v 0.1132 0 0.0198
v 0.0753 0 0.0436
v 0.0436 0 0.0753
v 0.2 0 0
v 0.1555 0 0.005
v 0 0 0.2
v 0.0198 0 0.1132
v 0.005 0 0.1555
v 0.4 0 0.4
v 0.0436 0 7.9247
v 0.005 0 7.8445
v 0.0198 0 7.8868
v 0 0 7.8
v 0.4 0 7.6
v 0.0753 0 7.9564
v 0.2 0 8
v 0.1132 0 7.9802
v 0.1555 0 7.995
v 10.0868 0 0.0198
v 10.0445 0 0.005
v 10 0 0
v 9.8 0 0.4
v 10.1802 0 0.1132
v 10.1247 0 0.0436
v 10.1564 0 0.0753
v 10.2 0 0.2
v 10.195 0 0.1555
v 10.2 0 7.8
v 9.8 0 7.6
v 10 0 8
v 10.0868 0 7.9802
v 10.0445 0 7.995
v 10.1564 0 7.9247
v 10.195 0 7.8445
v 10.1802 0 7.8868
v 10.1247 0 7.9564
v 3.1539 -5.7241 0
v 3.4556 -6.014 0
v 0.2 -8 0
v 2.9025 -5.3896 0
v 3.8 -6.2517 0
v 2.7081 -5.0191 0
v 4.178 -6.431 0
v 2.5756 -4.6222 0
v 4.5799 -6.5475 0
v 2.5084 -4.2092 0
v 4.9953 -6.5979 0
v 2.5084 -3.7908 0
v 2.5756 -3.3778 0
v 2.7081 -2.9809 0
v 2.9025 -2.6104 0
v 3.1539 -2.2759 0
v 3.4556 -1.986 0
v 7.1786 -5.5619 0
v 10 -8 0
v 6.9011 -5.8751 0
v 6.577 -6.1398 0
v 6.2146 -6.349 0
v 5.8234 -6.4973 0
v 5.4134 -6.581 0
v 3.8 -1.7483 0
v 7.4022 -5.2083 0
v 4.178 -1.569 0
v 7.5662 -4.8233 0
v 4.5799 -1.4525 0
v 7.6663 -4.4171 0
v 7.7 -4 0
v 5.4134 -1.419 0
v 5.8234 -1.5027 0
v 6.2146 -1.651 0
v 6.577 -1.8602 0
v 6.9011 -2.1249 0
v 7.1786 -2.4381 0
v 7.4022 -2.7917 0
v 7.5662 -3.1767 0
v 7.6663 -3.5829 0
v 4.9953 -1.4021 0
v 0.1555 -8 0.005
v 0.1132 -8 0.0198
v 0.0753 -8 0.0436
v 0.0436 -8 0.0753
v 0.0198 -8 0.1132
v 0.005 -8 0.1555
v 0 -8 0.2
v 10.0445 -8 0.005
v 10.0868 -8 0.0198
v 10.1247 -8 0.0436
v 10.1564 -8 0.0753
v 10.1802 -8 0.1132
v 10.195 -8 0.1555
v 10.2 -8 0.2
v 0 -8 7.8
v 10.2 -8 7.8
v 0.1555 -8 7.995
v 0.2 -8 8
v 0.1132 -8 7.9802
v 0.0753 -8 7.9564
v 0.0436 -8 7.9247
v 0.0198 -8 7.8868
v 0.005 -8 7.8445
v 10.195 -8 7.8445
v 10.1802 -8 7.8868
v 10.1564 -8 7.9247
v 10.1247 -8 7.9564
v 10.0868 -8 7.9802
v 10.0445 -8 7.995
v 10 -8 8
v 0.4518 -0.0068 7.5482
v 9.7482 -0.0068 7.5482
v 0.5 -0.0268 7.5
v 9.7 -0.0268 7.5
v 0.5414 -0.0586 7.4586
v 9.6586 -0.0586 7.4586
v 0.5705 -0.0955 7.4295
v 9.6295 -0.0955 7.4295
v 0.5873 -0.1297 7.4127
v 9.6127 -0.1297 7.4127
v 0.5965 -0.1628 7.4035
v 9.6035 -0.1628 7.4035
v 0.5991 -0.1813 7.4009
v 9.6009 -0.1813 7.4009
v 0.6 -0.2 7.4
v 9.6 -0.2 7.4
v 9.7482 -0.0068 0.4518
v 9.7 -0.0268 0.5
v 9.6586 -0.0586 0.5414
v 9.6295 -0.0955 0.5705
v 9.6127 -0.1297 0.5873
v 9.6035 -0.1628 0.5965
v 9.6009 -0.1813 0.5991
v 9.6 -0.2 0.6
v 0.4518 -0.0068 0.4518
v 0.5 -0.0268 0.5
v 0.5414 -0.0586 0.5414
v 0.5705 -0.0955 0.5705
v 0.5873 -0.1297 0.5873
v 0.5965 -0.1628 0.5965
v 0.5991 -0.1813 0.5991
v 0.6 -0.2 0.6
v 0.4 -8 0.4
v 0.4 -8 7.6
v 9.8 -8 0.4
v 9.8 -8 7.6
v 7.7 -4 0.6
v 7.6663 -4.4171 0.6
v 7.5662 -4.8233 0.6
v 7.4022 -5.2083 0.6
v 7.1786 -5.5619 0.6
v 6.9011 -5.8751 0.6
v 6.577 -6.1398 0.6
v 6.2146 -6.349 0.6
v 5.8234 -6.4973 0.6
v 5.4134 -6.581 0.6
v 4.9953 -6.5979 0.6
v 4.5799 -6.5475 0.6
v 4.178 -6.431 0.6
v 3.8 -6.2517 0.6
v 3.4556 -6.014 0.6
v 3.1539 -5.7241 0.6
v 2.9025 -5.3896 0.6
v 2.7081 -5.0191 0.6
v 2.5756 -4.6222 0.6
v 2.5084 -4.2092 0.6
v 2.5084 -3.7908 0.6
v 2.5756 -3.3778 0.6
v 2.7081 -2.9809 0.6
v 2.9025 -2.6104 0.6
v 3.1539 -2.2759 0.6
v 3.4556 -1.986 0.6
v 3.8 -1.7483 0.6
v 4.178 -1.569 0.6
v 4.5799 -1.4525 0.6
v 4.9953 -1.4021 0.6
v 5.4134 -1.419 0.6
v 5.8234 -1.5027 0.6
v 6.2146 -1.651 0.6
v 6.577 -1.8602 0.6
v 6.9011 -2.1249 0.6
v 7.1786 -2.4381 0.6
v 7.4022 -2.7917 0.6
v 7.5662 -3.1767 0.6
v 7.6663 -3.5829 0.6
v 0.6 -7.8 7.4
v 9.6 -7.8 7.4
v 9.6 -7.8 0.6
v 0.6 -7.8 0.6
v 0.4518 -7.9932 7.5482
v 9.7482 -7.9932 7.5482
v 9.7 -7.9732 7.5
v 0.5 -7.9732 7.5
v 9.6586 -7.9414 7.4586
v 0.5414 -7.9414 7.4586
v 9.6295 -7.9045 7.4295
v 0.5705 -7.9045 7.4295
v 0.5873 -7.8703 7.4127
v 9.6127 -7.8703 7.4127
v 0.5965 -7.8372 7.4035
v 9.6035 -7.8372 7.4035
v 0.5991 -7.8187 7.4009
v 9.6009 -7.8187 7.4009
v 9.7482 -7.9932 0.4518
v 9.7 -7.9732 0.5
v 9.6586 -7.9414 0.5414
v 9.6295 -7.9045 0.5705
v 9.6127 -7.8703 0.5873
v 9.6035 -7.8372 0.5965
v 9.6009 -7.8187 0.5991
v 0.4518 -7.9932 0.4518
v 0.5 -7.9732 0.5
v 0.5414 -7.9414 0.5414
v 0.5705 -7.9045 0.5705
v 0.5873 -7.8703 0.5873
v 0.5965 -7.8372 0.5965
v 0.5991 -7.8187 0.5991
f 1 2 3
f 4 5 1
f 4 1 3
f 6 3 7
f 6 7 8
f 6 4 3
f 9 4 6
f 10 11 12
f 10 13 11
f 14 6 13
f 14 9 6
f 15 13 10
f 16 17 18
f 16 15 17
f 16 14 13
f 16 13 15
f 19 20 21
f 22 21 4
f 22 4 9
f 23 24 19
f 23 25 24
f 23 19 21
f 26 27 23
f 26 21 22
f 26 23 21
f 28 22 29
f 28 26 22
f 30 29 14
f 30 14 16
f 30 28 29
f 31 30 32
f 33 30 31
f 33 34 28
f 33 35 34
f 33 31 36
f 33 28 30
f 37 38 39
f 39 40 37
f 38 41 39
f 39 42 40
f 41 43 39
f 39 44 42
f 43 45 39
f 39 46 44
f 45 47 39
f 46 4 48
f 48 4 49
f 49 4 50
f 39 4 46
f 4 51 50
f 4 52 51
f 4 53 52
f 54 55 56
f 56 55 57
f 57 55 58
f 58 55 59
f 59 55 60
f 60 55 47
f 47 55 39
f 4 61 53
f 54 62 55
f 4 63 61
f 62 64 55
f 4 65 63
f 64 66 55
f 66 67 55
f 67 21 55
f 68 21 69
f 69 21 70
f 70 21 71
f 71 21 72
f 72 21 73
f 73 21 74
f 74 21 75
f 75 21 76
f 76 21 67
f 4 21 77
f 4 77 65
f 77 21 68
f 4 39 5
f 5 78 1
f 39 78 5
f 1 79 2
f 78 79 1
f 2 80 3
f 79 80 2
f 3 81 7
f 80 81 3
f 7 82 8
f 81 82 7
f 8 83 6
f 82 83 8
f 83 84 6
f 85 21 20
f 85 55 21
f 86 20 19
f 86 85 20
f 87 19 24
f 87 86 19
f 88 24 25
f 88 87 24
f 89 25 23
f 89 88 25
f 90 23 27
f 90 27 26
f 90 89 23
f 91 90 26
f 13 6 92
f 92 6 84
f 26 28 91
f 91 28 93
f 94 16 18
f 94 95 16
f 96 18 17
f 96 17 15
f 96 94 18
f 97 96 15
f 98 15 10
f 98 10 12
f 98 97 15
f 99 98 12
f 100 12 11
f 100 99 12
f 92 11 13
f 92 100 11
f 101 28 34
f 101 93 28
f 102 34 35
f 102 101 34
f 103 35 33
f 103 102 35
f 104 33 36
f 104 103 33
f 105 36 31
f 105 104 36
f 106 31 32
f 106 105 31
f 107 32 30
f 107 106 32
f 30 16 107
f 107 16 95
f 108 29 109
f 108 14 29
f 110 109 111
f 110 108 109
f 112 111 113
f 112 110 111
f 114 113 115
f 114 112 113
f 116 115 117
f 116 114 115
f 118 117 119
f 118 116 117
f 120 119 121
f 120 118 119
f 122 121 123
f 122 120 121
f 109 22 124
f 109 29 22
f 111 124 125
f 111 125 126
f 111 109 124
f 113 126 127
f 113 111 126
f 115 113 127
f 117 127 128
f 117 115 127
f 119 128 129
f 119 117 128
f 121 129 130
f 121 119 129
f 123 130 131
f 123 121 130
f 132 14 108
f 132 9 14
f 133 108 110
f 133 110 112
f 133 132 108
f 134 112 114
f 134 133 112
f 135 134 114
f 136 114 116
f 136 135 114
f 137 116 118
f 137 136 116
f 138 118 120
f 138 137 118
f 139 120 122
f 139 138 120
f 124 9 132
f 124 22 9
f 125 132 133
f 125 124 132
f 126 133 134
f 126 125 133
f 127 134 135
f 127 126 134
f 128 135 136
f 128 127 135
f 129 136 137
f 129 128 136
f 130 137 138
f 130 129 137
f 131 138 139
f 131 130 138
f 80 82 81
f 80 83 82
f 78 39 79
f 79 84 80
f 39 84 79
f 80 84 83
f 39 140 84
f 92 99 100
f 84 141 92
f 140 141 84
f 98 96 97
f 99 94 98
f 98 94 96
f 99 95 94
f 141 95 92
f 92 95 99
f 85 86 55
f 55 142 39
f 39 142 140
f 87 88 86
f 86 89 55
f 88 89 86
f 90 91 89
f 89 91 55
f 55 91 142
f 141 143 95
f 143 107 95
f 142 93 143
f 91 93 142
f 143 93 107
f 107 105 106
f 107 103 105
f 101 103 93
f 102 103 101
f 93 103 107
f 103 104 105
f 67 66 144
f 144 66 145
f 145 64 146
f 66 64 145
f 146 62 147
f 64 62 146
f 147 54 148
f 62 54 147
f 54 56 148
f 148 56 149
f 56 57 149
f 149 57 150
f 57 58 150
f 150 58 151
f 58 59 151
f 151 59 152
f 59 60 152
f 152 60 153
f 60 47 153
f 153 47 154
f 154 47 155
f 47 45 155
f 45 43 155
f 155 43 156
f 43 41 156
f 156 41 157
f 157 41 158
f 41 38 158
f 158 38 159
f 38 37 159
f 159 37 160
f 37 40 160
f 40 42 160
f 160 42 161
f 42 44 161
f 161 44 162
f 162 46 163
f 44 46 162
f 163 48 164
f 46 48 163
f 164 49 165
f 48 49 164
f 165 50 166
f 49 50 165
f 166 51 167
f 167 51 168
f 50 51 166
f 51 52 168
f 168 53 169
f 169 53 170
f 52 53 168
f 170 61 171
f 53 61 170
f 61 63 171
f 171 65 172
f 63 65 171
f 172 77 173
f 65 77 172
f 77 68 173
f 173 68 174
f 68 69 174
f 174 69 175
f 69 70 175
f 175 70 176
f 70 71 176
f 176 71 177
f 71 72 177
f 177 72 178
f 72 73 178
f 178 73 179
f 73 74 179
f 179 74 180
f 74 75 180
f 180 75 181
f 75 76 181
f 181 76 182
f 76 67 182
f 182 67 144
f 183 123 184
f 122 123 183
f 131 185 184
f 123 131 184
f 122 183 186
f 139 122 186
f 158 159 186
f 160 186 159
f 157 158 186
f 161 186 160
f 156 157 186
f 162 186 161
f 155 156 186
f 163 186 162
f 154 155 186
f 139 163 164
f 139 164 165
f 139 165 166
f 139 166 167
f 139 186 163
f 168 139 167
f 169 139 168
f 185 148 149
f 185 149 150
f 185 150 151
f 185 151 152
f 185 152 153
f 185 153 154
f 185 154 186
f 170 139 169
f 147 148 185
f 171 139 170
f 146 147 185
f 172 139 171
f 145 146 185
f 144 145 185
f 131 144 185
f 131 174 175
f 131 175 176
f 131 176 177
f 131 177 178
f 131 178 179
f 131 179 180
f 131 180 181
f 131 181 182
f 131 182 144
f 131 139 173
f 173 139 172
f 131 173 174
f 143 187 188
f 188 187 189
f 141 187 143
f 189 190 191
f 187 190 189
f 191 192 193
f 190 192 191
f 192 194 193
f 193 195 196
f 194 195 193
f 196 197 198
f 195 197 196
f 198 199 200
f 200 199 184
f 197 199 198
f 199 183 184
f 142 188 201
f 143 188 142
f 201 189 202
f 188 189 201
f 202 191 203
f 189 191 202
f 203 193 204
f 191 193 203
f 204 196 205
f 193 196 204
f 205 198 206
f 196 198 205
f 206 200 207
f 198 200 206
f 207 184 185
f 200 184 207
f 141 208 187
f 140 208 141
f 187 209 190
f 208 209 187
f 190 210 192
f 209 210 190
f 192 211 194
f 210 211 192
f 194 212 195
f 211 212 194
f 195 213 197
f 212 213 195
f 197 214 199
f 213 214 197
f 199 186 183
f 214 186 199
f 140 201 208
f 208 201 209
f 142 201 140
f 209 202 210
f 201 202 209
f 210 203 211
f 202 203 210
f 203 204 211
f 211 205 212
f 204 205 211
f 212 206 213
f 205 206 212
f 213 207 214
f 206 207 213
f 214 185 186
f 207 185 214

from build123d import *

# Parameters (mm, degrees)
SKETCH_W     = 10.2
SKETCH_H     = 8
SKETCH_W_2   = 9
SKETCH_H_2   = 6.8
PAD_DEPTH    = 8
SKETCH001_R  = 2.6
POCKET_DEPTH = 0.6
FILLET_R     = 0.2
FILLET001_R  = 0.2


with BuildPart() as part:
    # Sketch → Pad (new body)
    with BuildSketch(Plane.XZ):
        with Locations((5.1, 4)):
            Rectangle(SKETCH_W, SKETCH_H)
        with Locations((5.1, 4)):
            Rectangle(SKETCH_W_2, SKETCH_H_2, mode=Mode.SUBTRACT)
    extrude(amount=PAD_DEPTH)

    # Sketch001 (on Face1 of Pad) → Pocket (cut)
    with BuildSketch(Plane(origin=(0, 0, 0), x_dir=(1, 0, 0), z_dir=(0, 0, -1))):
        with Locations((5.1, 4)):
            Circle(SKETCH001_R)
    extrude(amount=-POCKET_DEPTH, mode=Mode.SUBTRACT)

    # Fillet
    fillet_edges = [part.edges().sort_by_distance(p)[0] for p in [
        (5.1, -8, 7.4),
        (0.6, -8, 4),
        (9.6, -8, 4),
        (5.1, -8, 0.6),
        (5.1, 0, 7.4),
        (9.6, 0, 4),
        (5.1, 0, 0.6),
        (0.6, 0, 4),
    ]]
    fillet(fillet_edges, radius=FILLET_R)

    # Fillet001
    fillet001_edges = [part.edges().sort_by_distance(p)[0] for p in [
        (0, -4, 8),
        (10.2, -4, 8),
        (0, -4, 0),
        (10.2, -4, 0),
    ]]
    fillet(fillet001_edges, radius=FILLET001_R)


solid = part.part
